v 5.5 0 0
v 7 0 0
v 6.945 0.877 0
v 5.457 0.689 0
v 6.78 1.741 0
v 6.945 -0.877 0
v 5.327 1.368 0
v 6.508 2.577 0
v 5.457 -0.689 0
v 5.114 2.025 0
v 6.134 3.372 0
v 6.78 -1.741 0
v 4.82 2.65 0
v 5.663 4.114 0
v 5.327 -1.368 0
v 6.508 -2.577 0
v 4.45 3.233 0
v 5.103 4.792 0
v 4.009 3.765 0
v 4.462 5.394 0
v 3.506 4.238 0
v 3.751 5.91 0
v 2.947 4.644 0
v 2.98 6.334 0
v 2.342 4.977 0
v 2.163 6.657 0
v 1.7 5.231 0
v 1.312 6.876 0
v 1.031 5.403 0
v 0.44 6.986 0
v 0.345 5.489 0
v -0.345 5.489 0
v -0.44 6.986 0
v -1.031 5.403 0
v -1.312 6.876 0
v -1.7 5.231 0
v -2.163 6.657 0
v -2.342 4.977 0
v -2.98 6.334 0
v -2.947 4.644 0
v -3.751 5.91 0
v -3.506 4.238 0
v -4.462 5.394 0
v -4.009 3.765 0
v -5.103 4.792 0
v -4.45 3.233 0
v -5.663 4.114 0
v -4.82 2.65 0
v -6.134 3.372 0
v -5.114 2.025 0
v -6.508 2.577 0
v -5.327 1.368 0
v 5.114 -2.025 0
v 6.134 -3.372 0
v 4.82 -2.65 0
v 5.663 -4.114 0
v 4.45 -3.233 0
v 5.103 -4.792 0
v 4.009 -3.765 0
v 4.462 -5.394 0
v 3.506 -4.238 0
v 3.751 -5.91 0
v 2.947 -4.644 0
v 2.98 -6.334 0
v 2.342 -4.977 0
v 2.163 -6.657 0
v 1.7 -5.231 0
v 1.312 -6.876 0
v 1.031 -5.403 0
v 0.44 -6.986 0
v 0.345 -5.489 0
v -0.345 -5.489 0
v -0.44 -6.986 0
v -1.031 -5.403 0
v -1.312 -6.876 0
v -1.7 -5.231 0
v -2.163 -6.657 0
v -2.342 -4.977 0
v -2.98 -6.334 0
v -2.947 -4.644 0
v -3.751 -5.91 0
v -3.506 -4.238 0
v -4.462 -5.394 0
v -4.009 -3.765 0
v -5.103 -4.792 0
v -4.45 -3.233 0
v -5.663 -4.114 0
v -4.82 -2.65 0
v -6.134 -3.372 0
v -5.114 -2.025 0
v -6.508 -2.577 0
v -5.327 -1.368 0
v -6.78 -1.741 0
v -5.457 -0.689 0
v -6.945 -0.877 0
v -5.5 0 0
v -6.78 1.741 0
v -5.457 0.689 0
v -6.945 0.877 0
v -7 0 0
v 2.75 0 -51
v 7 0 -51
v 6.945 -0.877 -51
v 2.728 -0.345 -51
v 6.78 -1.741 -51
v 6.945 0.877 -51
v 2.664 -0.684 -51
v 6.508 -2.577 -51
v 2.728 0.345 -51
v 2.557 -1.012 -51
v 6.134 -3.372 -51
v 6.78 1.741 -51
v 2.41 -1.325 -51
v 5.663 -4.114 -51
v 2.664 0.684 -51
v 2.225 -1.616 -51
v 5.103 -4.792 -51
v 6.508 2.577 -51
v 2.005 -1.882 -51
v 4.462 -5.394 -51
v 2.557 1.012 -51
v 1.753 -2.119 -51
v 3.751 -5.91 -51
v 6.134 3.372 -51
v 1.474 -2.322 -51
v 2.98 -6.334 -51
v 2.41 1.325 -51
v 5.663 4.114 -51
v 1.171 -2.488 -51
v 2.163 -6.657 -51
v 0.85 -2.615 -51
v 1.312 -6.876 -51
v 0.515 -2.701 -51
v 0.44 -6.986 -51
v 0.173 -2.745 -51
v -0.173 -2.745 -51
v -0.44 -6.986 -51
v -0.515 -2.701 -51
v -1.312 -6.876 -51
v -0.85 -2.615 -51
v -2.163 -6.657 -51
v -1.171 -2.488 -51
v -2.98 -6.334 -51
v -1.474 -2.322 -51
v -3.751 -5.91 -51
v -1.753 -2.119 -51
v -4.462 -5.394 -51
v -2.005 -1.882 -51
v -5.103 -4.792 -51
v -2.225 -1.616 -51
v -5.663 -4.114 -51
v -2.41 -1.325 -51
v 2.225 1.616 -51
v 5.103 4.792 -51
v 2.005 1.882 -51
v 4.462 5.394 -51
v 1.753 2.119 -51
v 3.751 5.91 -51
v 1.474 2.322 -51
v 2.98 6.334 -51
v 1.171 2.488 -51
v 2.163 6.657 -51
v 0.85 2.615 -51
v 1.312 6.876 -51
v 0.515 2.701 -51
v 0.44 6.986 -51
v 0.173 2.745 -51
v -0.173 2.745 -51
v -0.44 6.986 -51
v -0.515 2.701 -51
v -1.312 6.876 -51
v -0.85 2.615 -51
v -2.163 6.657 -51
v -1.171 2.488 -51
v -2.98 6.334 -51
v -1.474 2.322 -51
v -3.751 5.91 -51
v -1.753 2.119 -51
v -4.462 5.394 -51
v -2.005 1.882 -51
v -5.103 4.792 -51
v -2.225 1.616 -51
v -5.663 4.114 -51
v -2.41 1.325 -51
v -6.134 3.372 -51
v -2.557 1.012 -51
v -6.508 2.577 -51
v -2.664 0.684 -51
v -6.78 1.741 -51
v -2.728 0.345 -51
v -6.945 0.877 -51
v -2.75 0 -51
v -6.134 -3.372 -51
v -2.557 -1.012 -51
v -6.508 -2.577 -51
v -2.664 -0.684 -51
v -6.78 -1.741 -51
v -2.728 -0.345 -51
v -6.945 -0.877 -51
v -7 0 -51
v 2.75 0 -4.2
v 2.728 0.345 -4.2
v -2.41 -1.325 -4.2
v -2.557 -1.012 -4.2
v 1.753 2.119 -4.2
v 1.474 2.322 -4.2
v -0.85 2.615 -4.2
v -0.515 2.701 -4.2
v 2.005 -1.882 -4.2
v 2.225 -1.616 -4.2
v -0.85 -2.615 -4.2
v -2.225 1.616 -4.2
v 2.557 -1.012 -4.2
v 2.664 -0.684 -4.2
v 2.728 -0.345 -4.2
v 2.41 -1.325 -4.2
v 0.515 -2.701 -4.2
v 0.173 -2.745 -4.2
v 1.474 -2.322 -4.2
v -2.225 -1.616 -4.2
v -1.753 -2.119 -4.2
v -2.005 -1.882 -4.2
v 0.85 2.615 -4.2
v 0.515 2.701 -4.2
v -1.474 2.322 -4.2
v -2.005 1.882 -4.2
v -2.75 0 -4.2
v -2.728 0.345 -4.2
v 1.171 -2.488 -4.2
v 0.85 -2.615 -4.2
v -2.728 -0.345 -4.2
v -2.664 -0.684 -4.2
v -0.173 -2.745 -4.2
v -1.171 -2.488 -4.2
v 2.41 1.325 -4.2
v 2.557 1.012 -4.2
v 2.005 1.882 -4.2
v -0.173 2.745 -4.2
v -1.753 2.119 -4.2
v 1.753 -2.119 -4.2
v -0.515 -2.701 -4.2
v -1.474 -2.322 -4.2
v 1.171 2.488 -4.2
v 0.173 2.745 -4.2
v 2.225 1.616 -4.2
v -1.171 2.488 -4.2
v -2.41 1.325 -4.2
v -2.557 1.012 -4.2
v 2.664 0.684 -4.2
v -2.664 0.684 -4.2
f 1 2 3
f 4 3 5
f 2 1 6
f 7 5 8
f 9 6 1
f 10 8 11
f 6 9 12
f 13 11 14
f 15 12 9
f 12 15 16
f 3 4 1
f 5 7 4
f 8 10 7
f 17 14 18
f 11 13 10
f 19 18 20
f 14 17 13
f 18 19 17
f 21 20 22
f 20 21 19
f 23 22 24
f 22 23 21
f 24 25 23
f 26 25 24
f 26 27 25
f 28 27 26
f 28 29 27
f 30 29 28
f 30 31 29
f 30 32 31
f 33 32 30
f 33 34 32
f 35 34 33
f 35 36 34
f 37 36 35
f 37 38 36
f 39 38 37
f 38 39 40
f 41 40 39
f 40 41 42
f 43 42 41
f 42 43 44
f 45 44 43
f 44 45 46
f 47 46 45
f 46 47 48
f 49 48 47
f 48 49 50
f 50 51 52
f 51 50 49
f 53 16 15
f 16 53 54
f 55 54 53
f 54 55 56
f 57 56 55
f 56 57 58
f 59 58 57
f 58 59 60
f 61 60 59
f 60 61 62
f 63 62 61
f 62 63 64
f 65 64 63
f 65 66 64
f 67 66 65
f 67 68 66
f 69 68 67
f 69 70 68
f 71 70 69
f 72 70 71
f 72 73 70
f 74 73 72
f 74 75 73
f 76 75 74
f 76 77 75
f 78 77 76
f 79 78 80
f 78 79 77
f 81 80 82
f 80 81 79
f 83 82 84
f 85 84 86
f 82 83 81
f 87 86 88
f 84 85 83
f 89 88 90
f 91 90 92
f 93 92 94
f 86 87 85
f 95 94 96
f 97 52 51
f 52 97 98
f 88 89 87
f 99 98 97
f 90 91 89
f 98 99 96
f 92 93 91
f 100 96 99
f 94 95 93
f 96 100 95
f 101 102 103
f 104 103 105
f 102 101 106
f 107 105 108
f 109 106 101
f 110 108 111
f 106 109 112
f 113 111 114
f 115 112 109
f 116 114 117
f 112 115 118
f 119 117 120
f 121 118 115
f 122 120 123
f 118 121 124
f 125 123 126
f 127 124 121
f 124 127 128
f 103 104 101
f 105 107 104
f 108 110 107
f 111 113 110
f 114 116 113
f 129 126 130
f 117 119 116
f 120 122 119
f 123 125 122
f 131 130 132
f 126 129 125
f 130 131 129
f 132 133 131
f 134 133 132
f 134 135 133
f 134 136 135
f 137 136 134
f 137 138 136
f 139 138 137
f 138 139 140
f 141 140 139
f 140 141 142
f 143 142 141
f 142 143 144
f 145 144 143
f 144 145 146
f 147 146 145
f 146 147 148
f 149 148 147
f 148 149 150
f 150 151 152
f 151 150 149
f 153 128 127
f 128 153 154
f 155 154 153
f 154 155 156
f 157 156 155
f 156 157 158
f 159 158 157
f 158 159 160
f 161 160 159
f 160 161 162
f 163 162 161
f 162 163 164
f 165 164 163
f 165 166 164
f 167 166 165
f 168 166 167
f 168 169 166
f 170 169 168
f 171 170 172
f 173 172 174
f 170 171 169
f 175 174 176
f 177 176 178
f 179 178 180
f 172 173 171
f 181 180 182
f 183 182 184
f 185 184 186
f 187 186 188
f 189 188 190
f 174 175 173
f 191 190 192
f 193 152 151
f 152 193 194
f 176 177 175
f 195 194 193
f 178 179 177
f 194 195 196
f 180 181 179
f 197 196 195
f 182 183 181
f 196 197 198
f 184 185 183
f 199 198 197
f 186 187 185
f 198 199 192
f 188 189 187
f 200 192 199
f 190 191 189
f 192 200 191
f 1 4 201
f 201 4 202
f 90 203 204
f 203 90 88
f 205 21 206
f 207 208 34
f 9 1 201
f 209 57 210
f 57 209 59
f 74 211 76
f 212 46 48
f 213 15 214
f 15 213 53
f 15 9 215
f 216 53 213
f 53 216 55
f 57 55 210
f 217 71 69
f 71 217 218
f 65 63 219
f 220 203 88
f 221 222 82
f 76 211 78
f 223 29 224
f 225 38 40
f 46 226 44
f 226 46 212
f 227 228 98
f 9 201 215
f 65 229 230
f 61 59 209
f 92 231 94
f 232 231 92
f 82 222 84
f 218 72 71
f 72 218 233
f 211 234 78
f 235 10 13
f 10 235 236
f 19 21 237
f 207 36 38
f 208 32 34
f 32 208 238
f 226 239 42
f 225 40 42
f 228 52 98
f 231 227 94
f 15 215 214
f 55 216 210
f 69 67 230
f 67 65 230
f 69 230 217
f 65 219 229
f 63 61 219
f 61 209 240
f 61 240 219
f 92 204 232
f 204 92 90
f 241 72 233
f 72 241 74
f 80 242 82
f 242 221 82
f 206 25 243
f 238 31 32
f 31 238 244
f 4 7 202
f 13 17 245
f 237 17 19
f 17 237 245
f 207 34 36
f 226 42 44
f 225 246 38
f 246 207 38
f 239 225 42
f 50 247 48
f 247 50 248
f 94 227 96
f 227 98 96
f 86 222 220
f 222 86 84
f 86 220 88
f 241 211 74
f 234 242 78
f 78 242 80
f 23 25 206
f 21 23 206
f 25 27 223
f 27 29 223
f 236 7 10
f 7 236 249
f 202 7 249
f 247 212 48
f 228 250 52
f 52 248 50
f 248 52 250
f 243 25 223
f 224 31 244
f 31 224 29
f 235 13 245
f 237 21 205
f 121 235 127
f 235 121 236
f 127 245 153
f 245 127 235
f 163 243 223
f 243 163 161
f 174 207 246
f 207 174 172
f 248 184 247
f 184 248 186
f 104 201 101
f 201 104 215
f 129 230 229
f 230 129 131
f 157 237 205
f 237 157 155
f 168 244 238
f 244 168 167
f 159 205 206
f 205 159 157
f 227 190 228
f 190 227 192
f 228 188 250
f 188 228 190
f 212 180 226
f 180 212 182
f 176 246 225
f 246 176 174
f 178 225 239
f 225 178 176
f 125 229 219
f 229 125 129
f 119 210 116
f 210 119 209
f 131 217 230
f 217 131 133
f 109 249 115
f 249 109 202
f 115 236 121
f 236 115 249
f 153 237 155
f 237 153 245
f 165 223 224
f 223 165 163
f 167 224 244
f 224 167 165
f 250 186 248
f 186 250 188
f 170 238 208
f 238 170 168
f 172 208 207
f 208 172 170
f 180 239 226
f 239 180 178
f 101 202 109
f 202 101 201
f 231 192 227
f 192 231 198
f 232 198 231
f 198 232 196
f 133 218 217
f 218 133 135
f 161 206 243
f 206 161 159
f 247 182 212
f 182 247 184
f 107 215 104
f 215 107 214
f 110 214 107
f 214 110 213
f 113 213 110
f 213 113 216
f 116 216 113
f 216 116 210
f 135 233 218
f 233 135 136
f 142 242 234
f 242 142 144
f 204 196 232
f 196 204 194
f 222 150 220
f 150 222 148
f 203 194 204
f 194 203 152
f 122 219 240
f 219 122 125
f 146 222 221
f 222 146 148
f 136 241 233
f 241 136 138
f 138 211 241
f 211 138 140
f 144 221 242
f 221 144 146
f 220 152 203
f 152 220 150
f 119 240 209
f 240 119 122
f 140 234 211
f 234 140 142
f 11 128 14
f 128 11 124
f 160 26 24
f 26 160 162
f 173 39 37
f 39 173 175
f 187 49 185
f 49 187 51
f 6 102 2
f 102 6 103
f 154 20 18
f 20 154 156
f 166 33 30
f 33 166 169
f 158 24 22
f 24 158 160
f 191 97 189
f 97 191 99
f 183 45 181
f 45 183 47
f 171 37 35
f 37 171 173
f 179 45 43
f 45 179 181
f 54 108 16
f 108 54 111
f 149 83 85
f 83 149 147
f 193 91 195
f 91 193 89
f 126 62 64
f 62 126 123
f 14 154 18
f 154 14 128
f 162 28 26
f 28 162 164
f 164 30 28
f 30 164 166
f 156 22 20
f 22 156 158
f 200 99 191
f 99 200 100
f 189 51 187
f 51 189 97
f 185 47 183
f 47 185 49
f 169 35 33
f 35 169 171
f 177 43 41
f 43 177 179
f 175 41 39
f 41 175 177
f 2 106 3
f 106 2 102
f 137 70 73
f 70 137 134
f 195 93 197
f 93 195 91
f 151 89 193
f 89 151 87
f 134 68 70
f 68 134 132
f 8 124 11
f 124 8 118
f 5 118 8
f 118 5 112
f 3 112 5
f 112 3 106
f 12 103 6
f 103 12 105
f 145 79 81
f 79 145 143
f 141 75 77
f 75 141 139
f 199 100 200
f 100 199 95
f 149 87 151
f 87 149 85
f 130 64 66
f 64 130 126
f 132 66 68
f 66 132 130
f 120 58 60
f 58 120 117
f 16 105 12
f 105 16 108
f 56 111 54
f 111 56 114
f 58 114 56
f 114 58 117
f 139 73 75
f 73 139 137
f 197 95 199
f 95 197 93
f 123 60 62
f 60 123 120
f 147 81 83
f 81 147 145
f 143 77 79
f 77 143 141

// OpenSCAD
$fn = 50;


difference() {
	union() {
		translate(v = [0, 0, -51.0000000000]) {
			cylinder(h = 51, r = 7.0000000000);
		}
		cylinder(h = 0, r = 16.0000000000);
	}
	union() {
		translate(v = [0, 0, 0]) {
			rotate(a = [0, 0, 0]) {
				difference() {
					union() {
						#translate(v = [0, 0, -51.0000000000]) {
							cylinder(h = 51, r = 2.2500000000);
						}
						#translate(v = [0, 0, -4.2000000000]) {
							cylinder(h = 4.2000000000, r = 7.0000000000, r1 = 2.7500000000, r2 = 5.5000000000);
						}
						#translate(v = [0, 0, -51.0000000000]) {
							cylinder(h = 51, r = 2.7500000000);
						}
						#translate(v = [0, 0, -51.0000000000]) {
							cylinder(h = 51, r = 2.2500000000);
						}
					}
					union();
				}
			}
		}
	}
}
